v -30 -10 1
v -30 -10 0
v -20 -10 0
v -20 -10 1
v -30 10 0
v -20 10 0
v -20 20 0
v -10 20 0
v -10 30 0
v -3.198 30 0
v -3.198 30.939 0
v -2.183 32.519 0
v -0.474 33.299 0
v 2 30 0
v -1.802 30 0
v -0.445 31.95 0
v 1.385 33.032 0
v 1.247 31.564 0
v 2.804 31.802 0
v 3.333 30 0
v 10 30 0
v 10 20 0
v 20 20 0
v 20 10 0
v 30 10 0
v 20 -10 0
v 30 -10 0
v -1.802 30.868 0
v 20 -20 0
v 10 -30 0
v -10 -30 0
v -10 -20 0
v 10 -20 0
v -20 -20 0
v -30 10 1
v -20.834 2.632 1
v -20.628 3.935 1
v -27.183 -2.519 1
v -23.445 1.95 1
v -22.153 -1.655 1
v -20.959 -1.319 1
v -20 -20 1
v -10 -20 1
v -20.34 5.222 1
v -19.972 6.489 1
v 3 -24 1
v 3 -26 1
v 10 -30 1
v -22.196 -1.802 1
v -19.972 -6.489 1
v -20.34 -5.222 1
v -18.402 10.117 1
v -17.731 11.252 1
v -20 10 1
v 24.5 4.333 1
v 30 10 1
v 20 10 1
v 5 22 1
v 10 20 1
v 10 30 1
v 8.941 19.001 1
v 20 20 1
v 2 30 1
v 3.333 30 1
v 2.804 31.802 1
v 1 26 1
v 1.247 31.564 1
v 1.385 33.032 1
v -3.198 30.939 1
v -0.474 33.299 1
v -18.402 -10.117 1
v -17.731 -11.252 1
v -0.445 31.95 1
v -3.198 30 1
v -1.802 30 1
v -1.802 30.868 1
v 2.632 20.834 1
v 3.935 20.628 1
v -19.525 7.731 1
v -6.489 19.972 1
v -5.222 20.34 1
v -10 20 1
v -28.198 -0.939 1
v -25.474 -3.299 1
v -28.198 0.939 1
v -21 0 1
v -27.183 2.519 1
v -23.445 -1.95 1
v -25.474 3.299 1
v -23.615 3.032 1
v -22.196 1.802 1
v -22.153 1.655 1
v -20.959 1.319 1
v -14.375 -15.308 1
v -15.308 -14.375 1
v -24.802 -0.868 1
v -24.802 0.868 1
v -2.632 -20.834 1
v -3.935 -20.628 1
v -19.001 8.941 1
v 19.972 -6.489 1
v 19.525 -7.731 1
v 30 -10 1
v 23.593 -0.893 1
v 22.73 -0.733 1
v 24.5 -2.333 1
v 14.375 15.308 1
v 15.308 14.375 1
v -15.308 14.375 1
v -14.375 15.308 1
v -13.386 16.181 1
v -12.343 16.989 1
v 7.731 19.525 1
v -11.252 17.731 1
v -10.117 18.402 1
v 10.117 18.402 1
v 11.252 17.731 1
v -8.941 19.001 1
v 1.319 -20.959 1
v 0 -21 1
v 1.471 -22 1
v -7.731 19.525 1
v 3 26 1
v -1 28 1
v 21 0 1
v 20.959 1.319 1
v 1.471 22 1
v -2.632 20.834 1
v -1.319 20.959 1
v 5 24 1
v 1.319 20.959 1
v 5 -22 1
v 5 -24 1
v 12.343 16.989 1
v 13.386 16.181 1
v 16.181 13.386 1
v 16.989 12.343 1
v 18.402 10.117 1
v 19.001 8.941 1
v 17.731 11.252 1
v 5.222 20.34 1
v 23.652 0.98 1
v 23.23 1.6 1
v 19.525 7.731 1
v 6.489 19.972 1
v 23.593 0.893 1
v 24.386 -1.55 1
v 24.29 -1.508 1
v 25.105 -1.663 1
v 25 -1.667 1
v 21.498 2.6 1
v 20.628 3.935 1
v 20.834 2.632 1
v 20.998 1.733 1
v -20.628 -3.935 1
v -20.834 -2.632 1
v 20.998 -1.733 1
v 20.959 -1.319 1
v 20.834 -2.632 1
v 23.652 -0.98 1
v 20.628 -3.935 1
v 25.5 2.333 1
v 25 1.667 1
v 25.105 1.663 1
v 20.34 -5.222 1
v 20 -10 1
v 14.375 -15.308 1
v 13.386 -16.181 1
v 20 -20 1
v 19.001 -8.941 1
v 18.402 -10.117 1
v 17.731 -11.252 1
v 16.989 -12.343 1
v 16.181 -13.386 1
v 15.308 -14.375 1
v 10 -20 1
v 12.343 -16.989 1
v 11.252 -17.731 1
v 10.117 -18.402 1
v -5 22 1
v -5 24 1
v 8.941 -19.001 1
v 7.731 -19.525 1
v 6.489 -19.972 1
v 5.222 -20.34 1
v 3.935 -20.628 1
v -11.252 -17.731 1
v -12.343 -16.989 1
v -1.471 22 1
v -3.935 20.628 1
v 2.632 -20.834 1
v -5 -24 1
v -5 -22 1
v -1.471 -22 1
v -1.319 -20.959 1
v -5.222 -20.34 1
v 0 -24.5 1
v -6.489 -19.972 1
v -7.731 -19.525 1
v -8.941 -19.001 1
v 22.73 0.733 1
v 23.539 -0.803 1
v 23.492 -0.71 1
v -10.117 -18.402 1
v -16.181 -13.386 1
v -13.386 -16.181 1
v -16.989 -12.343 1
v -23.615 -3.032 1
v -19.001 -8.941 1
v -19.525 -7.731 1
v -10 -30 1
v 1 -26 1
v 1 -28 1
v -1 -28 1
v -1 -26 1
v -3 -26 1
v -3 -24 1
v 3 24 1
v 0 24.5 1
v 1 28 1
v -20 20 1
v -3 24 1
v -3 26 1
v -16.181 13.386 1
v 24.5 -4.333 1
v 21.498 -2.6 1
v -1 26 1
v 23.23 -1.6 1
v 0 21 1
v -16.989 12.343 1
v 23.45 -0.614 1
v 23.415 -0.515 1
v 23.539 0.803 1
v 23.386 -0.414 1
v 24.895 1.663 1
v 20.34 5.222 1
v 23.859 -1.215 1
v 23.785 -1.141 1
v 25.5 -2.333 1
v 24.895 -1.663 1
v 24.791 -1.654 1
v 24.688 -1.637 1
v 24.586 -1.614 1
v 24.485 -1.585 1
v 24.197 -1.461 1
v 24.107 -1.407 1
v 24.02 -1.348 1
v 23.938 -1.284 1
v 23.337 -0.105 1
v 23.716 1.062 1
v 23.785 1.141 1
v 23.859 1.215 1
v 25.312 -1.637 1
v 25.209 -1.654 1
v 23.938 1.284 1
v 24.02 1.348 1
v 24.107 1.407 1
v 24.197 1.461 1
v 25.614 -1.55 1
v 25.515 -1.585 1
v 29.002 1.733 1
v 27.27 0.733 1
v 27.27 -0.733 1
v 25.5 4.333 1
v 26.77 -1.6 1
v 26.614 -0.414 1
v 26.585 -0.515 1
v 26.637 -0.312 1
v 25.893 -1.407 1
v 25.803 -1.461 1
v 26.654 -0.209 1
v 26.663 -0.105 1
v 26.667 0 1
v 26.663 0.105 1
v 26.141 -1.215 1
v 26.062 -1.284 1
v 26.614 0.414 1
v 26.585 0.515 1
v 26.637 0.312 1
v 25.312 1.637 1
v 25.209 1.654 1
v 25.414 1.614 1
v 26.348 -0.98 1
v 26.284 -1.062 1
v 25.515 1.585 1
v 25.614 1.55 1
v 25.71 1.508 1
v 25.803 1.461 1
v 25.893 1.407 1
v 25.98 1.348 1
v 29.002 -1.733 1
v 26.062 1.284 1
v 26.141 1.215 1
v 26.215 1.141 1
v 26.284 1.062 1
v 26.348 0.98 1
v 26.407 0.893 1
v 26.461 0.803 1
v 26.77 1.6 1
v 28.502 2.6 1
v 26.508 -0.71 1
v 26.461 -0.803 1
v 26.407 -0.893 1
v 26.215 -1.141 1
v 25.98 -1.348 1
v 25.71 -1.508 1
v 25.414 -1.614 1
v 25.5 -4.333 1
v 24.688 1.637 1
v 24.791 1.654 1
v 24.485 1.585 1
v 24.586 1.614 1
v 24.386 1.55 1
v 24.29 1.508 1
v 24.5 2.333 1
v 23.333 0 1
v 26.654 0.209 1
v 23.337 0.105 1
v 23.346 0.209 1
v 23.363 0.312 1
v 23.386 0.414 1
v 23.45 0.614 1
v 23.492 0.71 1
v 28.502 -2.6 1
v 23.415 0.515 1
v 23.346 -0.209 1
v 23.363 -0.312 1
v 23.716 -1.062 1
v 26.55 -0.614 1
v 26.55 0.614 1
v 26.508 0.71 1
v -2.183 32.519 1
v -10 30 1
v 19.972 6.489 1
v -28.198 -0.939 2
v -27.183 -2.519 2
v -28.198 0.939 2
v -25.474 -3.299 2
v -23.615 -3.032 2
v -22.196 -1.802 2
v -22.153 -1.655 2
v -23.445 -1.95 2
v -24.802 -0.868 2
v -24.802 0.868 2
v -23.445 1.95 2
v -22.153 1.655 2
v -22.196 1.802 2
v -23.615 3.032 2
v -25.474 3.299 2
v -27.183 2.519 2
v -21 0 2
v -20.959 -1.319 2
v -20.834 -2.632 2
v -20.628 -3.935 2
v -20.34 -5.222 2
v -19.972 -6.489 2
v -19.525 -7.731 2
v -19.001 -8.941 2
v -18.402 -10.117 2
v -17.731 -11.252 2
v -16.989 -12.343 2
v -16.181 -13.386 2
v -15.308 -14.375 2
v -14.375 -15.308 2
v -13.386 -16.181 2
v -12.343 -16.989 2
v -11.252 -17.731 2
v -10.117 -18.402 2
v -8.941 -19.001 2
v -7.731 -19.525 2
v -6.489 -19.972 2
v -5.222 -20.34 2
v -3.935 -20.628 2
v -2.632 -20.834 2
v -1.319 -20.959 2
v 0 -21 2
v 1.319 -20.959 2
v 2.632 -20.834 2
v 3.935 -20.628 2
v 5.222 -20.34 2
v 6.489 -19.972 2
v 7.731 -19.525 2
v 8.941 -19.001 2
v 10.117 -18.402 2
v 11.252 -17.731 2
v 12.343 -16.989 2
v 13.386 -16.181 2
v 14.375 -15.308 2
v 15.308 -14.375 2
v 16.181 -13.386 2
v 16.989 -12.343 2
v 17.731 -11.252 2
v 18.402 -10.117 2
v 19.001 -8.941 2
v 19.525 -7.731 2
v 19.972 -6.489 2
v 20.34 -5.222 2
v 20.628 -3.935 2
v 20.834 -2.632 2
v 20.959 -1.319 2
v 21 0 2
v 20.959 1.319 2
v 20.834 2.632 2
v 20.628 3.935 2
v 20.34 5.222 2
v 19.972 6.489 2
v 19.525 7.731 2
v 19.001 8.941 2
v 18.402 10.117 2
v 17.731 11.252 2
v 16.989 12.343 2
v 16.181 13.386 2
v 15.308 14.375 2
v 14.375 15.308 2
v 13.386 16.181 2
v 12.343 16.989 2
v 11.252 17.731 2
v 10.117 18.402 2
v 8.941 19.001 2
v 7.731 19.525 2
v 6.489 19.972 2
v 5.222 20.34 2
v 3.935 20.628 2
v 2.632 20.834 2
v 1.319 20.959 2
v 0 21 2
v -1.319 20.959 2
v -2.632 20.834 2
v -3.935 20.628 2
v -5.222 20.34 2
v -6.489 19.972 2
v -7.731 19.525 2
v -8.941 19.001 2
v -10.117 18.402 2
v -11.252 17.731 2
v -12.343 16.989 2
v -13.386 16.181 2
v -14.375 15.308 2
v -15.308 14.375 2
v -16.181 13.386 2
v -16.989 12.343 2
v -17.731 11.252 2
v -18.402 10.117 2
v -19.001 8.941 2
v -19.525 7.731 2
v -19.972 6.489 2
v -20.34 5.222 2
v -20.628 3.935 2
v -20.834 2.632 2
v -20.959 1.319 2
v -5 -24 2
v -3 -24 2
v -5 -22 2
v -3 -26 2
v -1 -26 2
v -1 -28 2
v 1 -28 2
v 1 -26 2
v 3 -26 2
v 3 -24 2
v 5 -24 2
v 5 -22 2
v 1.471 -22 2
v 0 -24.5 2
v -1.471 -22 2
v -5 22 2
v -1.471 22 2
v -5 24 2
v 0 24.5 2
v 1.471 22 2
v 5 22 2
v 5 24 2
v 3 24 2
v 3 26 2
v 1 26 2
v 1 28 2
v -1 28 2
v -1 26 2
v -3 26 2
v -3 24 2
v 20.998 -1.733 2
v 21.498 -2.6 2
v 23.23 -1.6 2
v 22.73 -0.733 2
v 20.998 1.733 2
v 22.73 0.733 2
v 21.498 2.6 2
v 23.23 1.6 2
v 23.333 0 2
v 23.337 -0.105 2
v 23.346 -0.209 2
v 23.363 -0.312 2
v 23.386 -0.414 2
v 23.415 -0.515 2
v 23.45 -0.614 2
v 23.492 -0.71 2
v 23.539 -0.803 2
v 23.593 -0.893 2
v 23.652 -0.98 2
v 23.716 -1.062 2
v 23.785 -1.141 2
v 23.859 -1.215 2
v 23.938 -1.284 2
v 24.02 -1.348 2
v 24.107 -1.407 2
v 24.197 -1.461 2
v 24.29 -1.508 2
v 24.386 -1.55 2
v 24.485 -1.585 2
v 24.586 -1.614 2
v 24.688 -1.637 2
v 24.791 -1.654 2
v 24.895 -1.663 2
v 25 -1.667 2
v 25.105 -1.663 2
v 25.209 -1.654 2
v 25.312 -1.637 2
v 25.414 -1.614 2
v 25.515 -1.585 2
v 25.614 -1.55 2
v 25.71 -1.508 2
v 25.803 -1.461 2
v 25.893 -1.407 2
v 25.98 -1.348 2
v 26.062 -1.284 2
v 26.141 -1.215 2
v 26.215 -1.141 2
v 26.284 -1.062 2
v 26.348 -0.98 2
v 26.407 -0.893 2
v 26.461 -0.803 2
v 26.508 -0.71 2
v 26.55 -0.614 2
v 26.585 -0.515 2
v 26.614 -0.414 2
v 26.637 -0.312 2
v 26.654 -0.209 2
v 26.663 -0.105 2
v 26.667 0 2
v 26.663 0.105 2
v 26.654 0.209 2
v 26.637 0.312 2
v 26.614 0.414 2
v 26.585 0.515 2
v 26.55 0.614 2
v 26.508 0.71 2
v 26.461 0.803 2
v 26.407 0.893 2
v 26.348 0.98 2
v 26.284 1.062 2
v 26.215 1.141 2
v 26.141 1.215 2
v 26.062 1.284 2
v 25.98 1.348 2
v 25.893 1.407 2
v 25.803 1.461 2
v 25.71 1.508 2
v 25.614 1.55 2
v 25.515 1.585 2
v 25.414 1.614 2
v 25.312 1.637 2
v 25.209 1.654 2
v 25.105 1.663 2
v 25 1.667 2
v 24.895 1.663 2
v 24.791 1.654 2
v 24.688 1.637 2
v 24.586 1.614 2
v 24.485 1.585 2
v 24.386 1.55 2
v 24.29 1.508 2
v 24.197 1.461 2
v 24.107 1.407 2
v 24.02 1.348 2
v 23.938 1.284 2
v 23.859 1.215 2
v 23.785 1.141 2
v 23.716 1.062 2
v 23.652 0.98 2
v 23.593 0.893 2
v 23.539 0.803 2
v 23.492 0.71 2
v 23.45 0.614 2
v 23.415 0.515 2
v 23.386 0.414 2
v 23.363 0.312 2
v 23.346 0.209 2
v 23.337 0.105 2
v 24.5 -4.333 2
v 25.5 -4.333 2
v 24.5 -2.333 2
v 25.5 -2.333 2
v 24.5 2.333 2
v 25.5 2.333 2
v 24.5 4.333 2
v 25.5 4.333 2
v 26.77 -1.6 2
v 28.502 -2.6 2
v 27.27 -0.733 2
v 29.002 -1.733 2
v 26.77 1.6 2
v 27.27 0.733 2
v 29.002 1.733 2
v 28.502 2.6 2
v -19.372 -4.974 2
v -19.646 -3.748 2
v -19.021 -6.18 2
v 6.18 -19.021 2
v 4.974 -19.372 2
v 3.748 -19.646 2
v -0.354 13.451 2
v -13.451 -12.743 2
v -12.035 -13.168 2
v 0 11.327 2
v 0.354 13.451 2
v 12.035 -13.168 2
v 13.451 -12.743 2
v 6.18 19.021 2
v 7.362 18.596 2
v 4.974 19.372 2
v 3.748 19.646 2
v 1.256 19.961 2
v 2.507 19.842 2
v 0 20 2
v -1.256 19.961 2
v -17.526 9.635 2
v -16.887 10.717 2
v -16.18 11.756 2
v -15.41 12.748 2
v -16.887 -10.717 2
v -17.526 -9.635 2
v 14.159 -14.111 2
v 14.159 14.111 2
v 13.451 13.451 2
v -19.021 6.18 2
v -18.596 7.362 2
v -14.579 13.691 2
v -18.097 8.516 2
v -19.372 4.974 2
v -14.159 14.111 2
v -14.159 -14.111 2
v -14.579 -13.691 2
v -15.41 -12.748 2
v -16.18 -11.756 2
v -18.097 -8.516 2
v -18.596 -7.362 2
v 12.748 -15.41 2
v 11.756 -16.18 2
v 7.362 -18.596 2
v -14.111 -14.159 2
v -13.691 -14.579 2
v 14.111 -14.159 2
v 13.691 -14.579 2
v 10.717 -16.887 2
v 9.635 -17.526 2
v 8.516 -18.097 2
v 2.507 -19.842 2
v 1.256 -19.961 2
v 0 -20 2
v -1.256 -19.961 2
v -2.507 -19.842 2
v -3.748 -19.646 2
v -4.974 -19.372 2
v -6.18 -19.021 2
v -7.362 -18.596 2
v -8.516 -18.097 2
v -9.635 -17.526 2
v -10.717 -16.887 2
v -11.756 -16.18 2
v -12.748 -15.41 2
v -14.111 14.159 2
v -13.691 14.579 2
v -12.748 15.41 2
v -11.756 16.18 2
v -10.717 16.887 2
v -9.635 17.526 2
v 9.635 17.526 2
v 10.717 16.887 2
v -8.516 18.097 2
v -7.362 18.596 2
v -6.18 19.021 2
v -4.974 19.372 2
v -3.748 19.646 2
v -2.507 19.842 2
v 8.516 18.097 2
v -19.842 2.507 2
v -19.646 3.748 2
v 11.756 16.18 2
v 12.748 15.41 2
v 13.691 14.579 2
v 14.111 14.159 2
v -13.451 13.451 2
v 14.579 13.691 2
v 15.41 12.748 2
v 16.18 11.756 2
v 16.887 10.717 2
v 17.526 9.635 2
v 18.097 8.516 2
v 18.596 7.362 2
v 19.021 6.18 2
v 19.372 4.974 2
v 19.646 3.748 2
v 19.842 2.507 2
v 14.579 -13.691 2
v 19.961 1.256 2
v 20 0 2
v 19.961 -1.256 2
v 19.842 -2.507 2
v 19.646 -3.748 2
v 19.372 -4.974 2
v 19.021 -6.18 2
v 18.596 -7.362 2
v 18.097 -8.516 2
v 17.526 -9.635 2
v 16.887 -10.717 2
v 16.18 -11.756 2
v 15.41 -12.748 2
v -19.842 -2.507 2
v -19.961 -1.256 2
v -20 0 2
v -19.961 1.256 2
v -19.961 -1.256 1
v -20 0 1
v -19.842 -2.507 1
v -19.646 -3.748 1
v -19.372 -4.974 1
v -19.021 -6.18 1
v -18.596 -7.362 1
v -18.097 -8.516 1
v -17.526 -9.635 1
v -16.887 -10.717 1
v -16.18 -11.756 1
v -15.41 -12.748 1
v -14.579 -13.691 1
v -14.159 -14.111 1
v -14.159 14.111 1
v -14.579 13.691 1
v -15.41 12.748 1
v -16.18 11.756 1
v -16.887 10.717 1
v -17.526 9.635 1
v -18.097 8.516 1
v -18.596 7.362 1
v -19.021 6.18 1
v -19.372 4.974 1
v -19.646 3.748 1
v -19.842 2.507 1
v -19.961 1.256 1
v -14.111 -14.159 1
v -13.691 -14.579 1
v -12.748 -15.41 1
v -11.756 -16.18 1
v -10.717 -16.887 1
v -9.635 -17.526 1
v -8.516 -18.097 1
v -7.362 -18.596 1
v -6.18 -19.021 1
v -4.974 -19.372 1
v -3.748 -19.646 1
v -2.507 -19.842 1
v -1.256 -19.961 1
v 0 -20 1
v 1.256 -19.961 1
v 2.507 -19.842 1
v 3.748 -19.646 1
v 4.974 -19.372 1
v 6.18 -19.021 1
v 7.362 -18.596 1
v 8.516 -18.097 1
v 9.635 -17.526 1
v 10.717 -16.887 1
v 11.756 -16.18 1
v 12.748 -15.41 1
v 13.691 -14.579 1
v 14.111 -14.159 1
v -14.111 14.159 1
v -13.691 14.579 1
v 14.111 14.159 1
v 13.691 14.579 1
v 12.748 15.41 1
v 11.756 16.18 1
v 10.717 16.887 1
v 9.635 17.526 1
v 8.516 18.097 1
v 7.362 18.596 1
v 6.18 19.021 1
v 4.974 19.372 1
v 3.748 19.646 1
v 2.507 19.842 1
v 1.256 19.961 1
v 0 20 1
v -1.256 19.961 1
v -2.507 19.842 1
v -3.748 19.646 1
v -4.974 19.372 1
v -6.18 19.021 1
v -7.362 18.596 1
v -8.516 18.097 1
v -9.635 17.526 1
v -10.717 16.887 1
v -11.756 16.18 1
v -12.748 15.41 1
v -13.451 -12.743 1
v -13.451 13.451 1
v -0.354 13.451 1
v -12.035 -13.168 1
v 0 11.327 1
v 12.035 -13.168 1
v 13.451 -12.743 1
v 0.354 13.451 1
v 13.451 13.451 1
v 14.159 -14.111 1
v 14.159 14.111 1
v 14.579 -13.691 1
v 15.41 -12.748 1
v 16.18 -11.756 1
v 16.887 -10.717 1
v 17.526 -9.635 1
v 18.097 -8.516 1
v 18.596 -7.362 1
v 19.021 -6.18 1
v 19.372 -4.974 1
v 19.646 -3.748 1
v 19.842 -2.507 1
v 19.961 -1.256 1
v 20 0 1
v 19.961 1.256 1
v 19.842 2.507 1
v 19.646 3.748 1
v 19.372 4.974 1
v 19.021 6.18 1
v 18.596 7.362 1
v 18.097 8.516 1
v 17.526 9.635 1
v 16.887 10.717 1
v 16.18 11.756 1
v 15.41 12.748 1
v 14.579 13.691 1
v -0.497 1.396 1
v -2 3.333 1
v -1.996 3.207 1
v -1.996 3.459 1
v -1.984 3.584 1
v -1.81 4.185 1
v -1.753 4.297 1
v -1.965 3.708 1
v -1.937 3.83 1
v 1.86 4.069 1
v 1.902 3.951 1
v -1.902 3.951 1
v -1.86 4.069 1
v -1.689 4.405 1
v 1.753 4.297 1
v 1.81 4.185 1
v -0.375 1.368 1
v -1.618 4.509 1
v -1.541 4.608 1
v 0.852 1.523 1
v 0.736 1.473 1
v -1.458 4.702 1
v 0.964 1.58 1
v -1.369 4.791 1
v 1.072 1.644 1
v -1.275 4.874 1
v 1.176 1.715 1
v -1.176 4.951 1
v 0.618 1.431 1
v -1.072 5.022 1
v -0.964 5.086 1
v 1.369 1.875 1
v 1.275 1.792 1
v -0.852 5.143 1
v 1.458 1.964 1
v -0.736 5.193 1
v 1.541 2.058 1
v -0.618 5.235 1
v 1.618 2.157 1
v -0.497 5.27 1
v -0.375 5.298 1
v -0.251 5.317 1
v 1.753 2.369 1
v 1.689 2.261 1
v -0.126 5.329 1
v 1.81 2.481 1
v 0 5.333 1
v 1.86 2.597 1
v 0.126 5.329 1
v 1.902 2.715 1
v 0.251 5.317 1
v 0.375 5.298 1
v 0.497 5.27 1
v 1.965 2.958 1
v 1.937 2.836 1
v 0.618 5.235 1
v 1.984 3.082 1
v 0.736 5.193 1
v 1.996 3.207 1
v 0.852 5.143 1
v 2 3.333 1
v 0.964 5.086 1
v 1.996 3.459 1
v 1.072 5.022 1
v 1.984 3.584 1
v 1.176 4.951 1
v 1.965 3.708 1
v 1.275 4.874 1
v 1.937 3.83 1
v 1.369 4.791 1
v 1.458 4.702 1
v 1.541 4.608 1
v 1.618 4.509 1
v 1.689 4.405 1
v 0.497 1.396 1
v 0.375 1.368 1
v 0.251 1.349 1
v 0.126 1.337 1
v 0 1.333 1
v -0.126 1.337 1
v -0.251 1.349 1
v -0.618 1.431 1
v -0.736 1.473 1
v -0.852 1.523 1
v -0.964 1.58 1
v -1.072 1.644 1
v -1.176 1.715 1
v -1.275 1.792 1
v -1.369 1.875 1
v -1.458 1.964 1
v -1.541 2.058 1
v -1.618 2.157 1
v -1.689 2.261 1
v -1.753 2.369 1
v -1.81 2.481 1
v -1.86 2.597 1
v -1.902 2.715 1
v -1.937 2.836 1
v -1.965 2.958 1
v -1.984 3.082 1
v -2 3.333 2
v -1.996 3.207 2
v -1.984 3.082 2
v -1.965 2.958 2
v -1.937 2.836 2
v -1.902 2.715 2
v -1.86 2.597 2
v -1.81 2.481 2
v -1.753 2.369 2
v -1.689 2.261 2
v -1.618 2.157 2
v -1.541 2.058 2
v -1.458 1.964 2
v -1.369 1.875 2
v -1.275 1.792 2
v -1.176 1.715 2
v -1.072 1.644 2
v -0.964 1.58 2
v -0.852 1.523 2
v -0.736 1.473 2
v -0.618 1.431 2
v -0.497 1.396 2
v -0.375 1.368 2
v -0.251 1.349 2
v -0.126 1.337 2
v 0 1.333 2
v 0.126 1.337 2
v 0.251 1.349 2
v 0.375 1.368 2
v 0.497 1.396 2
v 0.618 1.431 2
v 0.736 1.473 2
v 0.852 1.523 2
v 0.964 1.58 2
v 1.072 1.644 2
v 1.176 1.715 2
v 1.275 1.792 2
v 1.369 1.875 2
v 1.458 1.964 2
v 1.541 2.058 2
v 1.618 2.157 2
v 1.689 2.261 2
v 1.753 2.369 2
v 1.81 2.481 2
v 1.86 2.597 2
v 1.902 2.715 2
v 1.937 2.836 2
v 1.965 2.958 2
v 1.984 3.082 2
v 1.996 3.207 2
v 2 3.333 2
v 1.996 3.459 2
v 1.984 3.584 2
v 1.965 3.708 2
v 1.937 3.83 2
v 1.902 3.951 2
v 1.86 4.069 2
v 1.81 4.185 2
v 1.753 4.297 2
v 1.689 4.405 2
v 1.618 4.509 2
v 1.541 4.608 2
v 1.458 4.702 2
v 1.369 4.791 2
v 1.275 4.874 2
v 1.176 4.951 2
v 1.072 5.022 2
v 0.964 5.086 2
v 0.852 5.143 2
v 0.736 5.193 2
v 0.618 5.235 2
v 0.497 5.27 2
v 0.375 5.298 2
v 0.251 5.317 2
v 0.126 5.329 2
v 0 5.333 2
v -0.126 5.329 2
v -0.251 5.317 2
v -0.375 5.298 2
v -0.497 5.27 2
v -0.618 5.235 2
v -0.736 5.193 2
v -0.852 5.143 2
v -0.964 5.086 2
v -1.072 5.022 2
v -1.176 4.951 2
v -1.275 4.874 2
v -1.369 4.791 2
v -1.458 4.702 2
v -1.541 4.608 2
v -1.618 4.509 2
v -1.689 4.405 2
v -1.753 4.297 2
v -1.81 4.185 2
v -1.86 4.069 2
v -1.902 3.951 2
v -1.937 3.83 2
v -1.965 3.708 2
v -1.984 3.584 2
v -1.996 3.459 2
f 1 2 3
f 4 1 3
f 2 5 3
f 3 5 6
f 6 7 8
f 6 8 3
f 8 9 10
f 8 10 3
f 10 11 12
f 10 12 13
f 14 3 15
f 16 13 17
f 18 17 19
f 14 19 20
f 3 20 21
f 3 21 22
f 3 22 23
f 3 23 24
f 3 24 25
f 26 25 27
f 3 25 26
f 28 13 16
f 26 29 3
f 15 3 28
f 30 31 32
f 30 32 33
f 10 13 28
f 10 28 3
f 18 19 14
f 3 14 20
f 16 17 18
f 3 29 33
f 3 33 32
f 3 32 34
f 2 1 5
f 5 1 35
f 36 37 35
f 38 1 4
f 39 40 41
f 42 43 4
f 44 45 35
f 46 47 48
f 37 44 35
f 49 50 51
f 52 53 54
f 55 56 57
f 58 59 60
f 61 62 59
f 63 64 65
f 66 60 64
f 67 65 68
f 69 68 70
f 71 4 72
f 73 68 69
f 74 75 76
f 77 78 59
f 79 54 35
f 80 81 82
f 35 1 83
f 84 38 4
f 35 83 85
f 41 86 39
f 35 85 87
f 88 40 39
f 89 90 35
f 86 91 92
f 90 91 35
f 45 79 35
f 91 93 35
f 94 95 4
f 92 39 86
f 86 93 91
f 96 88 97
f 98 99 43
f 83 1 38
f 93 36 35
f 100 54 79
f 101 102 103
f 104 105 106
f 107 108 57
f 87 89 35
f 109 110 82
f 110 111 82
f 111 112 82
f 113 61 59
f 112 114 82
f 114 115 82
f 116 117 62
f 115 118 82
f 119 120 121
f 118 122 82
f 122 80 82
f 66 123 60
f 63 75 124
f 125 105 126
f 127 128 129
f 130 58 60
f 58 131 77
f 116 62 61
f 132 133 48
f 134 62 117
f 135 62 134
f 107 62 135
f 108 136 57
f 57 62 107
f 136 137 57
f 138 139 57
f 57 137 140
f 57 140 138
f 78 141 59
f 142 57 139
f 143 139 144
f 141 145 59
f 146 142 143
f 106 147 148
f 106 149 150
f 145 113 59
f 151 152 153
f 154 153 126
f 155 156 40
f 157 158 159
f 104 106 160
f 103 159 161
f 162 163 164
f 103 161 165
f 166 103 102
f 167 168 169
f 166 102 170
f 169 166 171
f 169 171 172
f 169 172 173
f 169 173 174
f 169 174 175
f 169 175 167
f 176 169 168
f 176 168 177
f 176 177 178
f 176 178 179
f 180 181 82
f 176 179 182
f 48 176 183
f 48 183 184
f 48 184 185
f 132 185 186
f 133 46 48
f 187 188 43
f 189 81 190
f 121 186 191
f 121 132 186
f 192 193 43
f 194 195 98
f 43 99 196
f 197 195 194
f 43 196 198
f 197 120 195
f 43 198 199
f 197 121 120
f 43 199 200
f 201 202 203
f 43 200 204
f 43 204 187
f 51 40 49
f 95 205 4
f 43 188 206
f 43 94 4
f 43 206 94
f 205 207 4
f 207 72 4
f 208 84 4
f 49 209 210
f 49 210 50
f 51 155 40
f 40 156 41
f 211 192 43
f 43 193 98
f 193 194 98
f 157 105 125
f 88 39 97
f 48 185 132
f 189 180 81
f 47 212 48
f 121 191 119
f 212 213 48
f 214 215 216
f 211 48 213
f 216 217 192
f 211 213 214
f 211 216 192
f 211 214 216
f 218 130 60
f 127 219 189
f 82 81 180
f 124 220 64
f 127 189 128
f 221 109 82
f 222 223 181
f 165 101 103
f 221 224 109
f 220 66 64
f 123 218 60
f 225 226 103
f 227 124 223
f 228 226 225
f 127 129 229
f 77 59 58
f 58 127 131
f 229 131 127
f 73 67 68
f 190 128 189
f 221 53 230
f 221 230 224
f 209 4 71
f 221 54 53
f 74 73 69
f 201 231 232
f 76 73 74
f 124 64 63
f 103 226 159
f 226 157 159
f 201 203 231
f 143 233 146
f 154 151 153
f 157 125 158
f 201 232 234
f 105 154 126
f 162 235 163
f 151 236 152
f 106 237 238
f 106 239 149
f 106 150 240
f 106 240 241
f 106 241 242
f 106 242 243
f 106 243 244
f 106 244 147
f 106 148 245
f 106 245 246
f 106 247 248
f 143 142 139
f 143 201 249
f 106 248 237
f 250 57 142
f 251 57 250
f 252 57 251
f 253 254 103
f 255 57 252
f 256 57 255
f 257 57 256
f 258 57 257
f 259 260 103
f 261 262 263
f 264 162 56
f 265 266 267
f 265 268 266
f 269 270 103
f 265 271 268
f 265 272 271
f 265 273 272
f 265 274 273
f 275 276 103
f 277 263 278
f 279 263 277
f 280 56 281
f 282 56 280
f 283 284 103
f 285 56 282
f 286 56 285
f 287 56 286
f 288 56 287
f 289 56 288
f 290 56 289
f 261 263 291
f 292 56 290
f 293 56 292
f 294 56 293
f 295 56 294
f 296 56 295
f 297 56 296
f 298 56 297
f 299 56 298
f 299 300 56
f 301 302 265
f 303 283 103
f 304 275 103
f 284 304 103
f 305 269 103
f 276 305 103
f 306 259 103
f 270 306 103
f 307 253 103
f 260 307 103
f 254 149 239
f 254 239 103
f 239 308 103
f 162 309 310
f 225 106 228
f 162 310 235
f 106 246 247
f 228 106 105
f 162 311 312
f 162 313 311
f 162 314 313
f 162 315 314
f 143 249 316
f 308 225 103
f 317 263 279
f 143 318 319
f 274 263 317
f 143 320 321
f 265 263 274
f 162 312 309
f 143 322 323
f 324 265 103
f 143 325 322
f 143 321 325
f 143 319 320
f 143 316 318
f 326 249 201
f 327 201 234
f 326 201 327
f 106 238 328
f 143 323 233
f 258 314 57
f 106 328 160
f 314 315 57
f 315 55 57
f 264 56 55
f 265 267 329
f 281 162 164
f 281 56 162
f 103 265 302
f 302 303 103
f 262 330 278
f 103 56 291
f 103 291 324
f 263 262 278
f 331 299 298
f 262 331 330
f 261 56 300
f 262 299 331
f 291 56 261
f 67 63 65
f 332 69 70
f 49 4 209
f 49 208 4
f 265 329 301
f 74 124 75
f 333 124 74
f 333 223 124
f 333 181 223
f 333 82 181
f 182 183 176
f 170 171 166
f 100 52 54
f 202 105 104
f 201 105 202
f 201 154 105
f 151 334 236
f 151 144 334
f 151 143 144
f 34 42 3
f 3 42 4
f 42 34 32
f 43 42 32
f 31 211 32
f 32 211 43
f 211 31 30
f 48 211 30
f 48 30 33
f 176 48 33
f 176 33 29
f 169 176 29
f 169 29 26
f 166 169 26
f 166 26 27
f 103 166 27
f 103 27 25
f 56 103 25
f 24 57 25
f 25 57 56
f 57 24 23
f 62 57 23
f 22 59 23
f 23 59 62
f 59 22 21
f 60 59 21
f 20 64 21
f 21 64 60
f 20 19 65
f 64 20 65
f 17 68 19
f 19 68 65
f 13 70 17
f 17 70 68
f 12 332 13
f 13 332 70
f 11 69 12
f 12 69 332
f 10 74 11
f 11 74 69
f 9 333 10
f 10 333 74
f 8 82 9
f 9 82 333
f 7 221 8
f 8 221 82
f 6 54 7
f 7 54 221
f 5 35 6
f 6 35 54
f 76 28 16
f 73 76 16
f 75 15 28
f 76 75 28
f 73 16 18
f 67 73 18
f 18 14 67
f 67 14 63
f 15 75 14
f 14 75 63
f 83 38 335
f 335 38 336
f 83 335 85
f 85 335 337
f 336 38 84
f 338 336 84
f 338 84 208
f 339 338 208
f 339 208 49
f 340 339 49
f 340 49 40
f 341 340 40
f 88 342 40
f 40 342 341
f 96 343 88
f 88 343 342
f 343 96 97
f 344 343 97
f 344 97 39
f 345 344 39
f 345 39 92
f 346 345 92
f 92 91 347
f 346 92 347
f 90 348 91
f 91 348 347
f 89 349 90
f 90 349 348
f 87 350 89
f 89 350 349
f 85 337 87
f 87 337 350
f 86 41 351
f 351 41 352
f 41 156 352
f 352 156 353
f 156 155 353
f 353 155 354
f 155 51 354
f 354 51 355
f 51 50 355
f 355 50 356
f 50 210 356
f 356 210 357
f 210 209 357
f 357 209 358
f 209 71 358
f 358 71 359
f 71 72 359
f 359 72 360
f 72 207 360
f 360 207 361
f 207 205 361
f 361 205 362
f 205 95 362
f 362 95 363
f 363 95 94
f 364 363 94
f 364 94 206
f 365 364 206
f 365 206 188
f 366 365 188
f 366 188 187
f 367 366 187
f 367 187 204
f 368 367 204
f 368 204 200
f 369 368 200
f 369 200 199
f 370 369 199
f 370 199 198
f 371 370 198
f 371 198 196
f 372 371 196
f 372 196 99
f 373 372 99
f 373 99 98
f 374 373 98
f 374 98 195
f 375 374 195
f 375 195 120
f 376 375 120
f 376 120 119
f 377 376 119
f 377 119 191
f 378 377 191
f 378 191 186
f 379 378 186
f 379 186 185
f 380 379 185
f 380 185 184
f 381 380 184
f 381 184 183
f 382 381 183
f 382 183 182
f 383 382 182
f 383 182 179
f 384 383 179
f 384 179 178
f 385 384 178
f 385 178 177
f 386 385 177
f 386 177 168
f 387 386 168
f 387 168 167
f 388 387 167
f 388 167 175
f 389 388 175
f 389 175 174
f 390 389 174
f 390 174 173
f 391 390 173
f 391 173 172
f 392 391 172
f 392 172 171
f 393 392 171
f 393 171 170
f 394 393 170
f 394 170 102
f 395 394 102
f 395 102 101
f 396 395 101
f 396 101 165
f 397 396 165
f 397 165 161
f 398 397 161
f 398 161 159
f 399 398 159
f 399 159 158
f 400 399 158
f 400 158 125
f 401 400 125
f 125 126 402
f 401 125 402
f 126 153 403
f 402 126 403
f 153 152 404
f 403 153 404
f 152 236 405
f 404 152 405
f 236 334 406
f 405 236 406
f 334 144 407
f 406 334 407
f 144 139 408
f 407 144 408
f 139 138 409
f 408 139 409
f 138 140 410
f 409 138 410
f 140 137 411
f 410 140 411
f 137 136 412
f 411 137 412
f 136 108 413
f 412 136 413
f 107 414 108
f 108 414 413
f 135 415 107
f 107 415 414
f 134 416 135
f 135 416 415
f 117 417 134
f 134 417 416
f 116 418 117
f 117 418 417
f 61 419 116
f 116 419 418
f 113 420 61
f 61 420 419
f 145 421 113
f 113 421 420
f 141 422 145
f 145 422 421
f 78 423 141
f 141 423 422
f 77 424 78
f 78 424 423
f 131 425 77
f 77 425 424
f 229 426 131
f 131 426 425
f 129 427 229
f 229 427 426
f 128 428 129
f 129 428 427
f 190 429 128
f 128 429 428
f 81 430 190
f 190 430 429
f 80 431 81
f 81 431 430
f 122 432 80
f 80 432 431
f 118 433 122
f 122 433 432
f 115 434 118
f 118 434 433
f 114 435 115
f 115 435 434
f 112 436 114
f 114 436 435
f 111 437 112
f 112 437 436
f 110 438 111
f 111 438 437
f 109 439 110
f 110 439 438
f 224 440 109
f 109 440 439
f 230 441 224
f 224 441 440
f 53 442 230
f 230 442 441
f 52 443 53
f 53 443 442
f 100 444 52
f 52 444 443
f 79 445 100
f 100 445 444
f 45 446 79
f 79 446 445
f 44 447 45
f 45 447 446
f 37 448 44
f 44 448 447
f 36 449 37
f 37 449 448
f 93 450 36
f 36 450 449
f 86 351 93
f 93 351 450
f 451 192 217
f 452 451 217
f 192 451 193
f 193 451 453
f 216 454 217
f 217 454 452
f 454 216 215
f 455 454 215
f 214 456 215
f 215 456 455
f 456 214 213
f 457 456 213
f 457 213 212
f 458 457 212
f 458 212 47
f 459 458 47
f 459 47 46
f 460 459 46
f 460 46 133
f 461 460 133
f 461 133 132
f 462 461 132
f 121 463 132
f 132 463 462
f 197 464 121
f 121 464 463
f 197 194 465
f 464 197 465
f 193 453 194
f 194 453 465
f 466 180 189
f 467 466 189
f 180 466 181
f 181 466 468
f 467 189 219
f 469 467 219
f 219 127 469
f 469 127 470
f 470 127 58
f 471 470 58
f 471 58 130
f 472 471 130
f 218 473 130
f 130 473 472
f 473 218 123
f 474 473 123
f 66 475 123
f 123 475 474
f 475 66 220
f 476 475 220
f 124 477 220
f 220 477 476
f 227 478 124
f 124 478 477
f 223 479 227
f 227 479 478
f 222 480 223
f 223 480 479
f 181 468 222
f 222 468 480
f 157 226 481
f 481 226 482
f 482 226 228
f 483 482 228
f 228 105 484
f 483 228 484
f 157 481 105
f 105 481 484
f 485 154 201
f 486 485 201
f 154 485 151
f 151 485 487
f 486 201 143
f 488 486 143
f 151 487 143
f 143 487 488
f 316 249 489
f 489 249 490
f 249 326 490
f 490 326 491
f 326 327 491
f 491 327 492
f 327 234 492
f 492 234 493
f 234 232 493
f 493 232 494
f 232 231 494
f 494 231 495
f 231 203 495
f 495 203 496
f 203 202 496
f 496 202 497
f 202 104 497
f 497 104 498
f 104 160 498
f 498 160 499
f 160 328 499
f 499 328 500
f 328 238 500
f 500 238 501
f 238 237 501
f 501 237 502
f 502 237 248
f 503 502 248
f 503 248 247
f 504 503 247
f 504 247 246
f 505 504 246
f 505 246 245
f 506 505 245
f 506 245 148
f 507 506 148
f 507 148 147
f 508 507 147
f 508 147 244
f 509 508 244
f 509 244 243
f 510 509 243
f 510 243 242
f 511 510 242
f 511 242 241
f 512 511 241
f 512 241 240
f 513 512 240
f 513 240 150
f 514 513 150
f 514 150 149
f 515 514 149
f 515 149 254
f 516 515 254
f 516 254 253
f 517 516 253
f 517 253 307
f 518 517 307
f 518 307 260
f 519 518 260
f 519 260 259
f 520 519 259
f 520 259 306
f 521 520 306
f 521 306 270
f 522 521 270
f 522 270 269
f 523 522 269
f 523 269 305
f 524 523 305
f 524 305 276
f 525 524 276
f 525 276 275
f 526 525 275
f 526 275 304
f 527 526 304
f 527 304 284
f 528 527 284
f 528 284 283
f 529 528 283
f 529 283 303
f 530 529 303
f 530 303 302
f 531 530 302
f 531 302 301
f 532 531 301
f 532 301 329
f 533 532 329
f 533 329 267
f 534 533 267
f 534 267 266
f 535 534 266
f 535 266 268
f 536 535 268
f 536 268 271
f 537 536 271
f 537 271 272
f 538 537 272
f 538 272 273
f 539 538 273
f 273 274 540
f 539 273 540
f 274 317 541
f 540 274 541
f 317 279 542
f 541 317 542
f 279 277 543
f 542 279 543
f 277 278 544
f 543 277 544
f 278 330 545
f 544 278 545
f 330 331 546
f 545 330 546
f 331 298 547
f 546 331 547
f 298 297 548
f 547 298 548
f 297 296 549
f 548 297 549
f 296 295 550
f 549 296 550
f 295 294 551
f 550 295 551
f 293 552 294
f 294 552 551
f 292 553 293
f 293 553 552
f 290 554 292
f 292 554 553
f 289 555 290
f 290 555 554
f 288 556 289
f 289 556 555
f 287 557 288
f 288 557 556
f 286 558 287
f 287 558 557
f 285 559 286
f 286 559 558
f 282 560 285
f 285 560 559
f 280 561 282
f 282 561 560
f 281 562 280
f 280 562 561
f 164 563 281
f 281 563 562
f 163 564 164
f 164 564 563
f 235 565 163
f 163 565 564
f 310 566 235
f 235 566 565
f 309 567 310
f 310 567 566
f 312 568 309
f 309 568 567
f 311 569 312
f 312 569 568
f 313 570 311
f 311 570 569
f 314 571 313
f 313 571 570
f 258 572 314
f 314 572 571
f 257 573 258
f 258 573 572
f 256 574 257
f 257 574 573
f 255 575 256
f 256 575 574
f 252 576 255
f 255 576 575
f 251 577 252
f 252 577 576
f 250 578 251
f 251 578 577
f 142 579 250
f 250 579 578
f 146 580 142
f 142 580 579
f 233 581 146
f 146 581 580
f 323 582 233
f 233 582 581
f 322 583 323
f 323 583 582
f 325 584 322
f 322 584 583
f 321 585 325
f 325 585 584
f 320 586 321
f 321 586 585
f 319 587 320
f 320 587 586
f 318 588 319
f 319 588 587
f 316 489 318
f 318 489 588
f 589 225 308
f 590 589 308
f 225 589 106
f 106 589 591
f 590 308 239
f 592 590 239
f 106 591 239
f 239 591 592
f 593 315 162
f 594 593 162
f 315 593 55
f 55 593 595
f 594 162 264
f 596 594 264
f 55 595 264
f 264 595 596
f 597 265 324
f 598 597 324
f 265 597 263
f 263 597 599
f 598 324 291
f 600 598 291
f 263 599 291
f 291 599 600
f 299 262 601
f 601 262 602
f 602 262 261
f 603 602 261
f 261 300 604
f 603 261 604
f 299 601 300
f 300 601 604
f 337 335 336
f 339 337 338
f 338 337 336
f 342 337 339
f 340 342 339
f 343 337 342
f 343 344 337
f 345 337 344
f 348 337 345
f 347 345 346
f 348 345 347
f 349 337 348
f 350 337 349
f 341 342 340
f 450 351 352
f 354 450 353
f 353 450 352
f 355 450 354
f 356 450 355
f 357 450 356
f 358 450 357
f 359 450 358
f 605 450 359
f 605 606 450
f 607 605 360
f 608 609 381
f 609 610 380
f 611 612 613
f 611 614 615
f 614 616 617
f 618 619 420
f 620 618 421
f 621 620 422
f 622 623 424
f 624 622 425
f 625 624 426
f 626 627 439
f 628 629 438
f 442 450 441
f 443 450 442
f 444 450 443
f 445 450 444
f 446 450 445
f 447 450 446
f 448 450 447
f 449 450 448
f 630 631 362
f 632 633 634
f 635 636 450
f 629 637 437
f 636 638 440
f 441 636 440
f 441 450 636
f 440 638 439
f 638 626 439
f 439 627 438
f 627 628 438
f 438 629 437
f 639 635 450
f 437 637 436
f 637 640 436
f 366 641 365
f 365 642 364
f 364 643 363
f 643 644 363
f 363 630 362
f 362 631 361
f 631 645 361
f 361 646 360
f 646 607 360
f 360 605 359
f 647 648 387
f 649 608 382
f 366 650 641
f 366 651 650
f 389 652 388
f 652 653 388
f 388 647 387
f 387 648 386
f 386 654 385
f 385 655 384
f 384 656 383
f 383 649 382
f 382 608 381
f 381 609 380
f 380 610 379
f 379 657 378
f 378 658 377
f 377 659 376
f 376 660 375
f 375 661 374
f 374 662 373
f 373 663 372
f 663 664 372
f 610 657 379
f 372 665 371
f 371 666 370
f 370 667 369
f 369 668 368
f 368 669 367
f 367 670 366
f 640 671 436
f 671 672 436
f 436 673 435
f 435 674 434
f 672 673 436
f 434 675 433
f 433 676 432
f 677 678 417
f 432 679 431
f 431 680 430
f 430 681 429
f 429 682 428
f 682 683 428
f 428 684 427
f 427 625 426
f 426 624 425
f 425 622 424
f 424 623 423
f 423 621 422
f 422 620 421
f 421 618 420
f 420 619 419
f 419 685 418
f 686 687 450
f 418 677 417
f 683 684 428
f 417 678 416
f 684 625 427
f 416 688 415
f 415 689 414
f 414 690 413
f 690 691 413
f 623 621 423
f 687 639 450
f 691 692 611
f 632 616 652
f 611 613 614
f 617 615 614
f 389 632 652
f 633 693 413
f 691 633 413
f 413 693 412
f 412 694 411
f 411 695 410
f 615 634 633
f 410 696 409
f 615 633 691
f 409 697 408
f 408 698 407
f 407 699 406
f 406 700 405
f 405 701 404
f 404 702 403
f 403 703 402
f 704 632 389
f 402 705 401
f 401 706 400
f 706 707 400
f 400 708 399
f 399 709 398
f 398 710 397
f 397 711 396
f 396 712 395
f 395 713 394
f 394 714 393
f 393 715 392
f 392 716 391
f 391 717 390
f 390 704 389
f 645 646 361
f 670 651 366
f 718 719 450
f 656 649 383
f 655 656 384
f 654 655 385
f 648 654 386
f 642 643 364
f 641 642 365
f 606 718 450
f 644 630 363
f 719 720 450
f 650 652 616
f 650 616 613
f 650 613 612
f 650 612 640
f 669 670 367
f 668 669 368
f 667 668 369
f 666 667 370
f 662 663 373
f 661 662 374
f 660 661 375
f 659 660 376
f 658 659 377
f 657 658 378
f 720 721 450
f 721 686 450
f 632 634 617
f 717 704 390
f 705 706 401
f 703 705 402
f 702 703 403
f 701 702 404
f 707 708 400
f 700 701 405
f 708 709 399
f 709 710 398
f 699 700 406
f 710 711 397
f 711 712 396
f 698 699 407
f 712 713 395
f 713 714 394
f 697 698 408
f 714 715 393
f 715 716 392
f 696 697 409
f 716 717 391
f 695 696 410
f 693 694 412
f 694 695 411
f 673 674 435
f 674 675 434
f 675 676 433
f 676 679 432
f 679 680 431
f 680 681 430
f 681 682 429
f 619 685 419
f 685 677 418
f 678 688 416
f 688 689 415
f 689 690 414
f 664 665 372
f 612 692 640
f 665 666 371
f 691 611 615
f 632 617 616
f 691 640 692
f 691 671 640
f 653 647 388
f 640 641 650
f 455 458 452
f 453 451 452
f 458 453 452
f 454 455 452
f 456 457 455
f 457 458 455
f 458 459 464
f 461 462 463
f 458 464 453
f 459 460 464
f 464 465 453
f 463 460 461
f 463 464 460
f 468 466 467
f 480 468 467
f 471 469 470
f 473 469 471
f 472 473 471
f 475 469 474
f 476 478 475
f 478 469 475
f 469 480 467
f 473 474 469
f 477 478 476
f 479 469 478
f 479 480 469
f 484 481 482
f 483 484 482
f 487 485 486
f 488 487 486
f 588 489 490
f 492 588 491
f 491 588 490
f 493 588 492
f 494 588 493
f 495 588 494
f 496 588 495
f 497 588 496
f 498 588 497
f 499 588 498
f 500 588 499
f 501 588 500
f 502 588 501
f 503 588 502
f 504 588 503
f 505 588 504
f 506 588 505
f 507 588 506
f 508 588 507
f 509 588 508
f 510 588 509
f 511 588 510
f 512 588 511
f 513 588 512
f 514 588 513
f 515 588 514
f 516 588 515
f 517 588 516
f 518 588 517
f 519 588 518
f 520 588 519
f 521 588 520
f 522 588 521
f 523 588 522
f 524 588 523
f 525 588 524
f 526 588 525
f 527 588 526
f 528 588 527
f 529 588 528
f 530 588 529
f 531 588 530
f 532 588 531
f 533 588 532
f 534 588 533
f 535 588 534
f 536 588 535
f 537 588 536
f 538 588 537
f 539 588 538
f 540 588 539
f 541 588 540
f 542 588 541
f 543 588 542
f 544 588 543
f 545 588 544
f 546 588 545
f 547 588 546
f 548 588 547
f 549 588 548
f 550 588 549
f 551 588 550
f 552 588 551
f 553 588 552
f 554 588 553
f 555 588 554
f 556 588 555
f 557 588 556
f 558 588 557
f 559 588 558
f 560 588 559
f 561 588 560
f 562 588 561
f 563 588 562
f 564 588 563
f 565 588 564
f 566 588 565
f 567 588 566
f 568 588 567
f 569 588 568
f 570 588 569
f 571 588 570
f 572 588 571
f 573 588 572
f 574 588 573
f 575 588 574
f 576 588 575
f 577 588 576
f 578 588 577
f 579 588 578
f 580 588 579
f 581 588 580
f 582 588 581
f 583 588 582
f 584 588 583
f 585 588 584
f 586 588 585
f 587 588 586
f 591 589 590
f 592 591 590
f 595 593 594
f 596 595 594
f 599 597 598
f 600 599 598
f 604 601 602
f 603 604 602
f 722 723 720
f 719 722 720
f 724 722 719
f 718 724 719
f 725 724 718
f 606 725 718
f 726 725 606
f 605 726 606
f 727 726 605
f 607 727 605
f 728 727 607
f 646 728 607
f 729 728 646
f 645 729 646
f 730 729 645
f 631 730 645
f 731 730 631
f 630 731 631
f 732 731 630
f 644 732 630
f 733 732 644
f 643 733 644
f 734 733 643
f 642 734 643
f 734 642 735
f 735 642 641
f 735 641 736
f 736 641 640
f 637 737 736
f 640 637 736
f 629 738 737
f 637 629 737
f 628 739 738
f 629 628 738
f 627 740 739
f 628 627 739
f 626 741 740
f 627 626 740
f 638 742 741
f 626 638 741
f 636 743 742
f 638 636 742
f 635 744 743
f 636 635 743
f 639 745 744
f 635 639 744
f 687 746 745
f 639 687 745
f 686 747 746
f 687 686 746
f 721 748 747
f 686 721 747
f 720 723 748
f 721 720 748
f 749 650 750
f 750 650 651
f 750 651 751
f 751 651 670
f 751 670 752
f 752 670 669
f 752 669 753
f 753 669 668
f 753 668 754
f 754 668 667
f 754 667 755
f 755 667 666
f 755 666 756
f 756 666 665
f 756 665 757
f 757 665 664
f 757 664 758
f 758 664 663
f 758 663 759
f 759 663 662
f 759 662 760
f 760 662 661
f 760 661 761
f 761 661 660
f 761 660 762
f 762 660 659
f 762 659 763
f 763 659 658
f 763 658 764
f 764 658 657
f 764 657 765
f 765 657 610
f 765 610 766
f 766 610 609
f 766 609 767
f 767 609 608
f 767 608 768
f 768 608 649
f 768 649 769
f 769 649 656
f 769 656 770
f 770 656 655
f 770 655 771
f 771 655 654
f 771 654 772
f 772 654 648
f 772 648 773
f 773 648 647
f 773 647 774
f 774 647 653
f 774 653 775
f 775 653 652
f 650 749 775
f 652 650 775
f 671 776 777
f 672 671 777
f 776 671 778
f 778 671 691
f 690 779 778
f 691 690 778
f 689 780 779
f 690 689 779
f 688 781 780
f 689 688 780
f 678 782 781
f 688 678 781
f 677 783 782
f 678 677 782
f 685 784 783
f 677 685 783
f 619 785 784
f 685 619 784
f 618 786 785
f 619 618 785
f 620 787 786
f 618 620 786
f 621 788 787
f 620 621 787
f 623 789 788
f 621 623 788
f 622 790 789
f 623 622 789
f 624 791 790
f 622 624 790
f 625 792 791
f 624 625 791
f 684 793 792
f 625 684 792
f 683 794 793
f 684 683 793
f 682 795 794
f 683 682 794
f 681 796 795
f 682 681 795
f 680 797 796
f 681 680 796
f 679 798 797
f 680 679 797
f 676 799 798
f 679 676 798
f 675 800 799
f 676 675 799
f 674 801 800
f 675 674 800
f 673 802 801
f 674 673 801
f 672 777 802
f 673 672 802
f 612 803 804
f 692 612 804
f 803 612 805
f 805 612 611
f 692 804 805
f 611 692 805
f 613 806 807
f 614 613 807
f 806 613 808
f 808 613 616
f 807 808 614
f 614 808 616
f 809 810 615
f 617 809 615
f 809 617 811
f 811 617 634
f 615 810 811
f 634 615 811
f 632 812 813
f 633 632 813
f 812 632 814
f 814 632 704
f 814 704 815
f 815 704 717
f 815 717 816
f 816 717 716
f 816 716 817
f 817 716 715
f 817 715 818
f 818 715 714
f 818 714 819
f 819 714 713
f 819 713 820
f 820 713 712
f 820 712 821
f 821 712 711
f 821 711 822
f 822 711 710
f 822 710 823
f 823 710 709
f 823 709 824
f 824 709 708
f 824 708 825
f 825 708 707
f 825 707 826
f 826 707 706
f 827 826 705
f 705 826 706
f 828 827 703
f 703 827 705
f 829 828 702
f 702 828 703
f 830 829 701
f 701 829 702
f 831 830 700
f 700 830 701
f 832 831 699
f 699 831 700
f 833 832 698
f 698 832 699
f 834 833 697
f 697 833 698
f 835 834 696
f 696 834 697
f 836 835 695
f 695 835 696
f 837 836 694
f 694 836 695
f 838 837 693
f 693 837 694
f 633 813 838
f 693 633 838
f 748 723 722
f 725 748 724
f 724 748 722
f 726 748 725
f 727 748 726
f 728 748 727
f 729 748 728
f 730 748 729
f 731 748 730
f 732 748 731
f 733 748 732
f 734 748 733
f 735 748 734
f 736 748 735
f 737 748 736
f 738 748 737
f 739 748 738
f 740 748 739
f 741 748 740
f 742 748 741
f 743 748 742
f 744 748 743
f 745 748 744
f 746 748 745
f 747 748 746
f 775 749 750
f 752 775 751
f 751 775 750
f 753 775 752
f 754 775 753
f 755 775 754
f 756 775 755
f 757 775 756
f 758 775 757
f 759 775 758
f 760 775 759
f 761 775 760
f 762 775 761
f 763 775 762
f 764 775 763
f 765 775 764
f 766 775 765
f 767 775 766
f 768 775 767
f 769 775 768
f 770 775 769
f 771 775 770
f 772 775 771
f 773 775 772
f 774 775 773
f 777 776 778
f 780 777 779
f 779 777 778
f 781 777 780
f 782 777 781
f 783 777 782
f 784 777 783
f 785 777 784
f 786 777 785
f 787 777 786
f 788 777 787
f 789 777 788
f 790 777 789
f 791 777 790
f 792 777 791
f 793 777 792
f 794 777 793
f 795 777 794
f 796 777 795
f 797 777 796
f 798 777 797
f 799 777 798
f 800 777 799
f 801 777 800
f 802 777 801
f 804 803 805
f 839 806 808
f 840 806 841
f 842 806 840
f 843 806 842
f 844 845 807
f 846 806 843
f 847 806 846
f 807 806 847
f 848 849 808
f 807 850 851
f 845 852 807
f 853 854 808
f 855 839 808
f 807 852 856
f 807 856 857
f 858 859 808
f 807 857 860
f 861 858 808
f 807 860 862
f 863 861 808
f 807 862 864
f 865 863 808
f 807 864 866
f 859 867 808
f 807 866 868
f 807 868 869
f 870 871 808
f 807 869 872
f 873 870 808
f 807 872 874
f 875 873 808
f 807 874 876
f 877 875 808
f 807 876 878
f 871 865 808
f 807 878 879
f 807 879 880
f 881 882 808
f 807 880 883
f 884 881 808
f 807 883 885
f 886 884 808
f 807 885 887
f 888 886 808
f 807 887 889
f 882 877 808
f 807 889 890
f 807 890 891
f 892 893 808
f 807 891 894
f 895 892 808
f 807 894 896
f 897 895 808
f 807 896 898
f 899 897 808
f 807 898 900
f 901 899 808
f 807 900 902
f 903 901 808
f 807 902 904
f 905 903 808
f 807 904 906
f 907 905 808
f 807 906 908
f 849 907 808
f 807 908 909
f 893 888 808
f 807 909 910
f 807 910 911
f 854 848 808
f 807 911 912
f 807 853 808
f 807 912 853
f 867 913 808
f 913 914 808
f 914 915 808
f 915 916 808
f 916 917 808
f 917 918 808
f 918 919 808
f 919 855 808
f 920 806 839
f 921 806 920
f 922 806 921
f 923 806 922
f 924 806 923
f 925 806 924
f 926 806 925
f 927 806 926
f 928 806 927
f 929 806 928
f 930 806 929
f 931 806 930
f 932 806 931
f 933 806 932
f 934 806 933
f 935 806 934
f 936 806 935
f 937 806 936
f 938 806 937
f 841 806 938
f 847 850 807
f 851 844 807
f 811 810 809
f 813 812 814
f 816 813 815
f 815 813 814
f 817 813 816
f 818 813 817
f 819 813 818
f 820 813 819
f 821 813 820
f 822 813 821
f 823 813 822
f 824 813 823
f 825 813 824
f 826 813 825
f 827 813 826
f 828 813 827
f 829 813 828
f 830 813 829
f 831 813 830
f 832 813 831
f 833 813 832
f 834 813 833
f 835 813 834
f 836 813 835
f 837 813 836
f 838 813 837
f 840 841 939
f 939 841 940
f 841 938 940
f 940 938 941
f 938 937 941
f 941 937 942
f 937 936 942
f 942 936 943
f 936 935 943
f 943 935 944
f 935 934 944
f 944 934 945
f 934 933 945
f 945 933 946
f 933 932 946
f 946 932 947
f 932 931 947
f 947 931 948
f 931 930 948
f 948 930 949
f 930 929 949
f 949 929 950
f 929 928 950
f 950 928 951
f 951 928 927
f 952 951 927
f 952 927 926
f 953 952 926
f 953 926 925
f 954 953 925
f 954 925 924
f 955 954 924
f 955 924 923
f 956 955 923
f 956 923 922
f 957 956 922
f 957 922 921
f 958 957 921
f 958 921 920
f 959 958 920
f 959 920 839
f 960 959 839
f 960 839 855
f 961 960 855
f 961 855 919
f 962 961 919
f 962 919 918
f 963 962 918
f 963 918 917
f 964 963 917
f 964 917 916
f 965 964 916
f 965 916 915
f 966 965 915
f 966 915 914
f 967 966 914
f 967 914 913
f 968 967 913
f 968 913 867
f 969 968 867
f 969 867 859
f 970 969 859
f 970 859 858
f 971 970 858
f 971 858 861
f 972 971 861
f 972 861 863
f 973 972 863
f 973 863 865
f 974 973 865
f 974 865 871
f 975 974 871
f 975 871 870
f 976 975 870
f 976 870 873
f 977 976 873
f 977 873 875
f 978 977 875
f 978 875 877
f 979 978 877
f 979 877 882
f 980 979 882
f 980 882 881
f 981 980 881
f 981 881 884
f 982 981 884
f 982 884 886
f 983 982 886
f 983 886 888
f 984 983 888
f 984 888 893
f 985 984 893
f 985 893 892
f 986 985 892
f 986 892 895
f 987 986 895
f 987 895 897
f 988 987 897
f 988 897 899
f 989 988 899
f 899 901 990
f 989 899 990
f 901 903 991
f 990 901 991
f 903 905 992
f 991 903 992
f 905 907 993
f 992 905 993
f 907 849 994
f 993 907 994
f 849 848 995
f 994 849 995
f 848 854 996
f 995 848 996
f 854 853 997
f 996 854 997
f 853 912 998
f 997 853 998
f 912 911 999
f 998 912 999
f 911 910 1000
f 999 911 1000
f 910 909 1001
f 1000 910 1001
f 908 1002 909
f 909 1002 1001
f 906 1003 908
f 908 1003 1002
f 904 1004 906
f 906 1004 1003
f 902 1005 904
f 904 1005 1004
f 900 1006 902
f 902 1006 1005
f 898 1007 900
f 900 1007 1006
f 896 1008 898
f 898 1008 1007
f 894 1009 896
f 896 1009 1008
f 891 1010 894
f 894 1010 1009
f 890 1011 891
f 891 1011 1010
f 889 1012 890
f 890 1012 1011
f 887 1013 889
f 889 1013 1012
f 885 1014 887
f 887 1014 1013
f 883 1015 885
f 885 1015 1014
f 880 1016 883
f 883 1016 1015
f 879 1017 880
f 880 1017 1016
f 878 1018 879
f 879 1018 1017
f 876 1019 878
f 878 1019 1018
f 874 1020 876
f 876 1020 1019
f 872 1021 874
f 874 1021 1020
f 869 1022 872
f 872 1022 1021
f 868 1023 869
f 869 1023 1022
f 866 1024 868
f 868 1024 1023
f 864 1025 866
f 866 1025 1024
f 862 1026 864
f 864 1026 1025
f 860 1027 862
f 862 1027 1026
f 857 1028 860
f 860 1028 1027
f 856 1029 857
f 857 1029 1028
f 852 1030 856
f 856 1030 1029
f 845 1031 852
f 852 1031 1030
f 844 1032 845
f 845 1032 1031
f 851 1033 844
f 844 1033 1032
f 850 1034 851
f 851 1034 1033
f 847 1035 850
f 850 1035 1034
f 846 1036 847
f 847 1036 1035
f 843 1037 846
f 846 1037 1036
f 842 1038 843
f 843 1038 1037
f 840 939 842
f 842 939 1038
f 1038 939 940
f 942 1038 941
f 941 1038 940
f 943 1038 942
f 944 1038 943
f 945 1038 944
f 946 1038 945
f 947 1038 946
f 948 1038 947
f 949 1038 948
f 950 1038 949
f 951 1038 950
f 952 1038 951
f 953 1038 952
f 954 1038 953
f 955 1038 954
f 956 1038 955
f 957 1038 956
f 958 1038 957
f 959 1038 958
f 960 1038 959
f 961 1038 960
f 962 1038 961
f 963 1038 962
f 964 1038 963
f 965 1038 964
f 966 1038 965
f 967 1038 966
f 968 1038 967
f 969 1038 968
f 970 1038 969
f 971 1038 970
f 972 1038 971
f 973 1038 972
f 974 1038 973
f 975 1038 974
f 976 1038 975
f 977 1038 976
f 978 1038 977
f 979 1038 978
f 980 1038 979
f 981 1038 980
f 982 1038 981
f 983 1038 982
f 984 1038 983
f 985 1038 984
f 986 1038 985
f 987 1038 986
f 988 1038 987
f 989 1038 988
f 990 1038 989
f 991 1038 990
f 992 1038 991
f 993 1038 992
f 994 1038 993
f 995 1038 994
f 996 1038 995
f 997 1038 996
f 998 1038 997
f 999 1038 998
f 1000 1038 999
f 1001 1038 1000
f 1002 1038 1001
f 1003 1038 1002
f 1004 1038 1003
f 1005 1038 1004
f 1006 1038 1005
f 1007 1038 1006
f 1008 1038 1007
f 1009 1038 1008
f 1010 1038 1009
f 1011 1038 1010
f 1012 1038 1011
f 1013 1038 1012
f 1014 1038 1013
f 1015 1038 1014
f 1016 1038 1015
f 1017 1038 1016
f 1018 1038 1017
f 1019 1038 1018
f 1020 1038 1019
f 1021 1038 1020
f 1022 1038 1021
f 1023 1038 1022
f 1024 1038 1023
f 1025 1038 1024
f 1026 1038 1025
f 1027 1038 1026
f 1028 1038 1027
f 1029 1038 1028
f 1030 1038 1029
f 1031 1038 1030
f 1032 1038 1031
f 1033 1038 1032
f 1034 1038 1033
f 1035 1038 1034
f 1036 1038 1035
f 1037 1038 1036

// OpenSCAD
// Author: Samuel El-Borai
// Date: april 2014
//
// A `cruz andina' is a maya symbol


cruz_andina(10);

module cruz_andina(level) {
    pi = 3.141592653580;
    pi_decimal = (pi - 3) * 10;
    pi_dec_level = pi_decimal * level;

    thick_base = 1;
    thick_symbol = 2;


    linear_extrude(thick_base)
    union() {
        // Handle
        translate([0, 3 * level])
        difference() {
            circle(level / 3);
            circle(level / 5);
        }

        // Cross
        square([2 * level, 6 * level], center = true);
        square([6 * level, 2 * level], center = true);
        square([4 * level, 4 * level], center = true);
    }


    // Teluric circle
    linear_extrude(thick_symbol)
    difference() {
        circle(2.1 * level, $fn = 100);
        circle(2 * level, $fn = 100);
    }

    // Inner square
    linear_extrude(thick_symbol)
    difference() {
        square(2 * pi_dec_level, center = true);
        square(1.9 * pi_dec_level, center = true);
    };

    // Inner triangle
    linear_extrude(thick_symbol)
    difference() {
        polygon(points = [[-1 * pi_dec_level, -1 * pi_dec_level],
                          [0, pi_dec_level],
                          [pi_dec_level, -1 * pi_dec_level]],
                paths = [[0, 1, 2]]);

        polygon(points = [[-0.85 * pi_dec_level, -0.93 * pi_dec_level],
                          [0, 0.8 * pi_dec_level],
                          [0.85 * pi_dec_level, -0.93 * pi_dec_level]],
                paths = [[0, 1, 2]]);
    }


    // Middle circle
    linear_extrude(thick_symbol)
    translate([0, level / 3])
    circle(level / 5, $fn = 100);

    // Sun
    linear_extrude(thick_symbol)
    translate([2.5 * level, 0])
    union() {
        for(tetha = [0:60:360]) {
            rotate(tetha)
            translate([0, level / 3])
            square([level / 10, level / 5], center = true);
        }

        circle(level / 6, $fn = 100, center = true);
    }

    // Moon
    linear_extrude(thick_symbol)
    translate([-2.5 * level, 0])
    difference() {
        circle(level / 3);
        translate([level / 5, 0])
        circle(level / 5);
    }

    // Pyramid top
    linear_extrude(thick_symbol)
    translate([0, 2.5 * level])
    difference() {
        // Pyramid
        union() {
            translate([0, -2])
            square([10, 2], center = true);
            translate([0, 0])
            square([6, 2], center = true);
            translate([0, 2])
            square([2, 2], center = true);
        }

        // Triangle
        polygon(points = [[- level / 6, - level / 3],
                          [0, - level / 20],
                          [level / 6, - level / 3]],
                paths = [[0, 1, 2]]);
    }


    // Pyramid bottom
    linear_extrude(thick_symbol)
    translate([0, -2.5 * level])
    rotate(180)
    difference() {
        // Pyramid
        union() {
            translate([0, -2])
            square([10, 2], center = true);
            translate([0, 0])
            square([6, 2], center = true);
            translate([0, 2])
            square([2, 2], center = true);
        }

        // Triangle
        polygon(points = [[- level / 6, - level / 3],
                          [0, - level / 20],
                          [level / 6, - level / 3]],
                paths = [[0, 1, 2]]);
    }
}
